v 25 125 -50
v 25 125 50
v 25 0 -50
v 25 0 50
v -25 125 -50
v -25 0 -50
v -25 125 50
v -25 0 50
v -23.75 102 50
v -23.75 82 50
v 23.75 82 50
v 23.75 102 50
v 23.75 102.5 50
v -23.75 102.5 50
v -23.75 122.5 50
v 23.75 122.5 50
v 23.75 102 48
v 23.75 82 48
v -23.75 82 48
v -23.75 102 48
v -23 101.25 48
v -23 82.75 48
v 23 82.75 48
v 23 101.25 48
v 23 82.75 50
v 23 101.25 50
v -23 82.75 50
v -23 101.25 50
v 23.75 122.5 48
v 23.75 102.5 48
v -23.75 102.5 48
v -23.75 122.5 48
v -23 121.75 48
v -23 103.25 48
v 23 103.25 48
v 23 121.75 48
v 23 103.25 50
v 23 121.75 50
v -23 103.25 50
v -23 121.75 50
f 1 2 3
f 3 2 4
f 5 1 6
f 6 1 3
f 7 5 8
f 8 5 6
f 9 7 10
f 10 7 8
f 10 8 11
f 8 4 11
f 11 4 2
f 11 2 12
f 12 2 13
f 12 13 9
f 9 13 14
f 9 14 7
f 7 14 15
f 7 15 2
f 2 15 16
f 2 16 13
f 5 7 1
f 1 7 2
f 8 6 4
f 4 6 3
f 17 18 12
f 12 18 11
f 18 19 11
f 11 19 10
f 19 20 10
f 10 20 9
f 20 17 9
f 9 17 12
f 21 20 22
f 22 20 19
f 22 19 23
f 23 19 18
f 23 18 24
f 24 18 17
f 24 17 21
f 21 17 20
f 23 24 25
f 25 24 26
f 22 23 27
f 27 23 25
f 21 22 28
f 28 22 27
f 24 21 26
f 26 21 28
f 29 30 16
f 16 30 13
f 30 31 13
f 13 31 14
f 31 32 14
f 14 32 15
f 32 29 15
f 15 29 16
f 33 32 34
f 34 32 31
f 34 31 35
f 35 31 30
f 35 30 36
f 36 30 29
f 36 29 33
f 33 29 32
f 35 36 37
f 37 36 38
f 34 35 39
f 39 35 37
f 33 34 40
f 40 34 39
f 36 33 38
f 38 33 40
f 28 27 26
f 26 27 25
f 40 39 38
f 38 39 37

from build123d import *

# Parameters (mm, degrees)
SKETCH1_W           = 50
SKETCH1_H           = 100
BOSS_EXTRUDE1_DEPTH = 125
SKETCH2_W           = 47.5
SKETCH2_H           = 20
SKETCH2_W_2         = 46
SKETCH2_H_2         = 18.5
CUT_EXTRUDE1_DEPTH  = 2


with BuildPart() as part:
    # Sketch1 → Boss-Extrude1 (new body)
    with BuildSketch(Plane(origin=(0, 0, 0), x_dir=(1, 0, 0), z_dir=(0, 1, 0))):
        Rectangle(SKETCH1_W, SKETCH1_H)
    extrude(amount=BOSS_EXTRUDE1_DEPTH)

    # Sketch2 → Cut-Extrude1 (cut)
    with BuildSketch(Plane.XY.offset(50)):
        with Locations((0, 112.5)):
            Rectangle(SKETCH2_W, SKETCH2_H)
        with Locations((0, 112.5)):
            Rectangle(SKETCH2_W_2, SKETCH2_H_2, mode=Mode.SUBTRACT)
        with Locations((0, 92)):
            Rectangle(SKETCH2_W, SKETCH2_H)
        with Locations((0, 92)):
            Rectangle(SKETCH2_W_2, SKETCH2_H_2, mode=Mode.SUBTRACT)
    extrude(amount=-CUT_EXTRUDE1_DEPTH, mode=Mode.SUBTRACT)


solid = part.part
